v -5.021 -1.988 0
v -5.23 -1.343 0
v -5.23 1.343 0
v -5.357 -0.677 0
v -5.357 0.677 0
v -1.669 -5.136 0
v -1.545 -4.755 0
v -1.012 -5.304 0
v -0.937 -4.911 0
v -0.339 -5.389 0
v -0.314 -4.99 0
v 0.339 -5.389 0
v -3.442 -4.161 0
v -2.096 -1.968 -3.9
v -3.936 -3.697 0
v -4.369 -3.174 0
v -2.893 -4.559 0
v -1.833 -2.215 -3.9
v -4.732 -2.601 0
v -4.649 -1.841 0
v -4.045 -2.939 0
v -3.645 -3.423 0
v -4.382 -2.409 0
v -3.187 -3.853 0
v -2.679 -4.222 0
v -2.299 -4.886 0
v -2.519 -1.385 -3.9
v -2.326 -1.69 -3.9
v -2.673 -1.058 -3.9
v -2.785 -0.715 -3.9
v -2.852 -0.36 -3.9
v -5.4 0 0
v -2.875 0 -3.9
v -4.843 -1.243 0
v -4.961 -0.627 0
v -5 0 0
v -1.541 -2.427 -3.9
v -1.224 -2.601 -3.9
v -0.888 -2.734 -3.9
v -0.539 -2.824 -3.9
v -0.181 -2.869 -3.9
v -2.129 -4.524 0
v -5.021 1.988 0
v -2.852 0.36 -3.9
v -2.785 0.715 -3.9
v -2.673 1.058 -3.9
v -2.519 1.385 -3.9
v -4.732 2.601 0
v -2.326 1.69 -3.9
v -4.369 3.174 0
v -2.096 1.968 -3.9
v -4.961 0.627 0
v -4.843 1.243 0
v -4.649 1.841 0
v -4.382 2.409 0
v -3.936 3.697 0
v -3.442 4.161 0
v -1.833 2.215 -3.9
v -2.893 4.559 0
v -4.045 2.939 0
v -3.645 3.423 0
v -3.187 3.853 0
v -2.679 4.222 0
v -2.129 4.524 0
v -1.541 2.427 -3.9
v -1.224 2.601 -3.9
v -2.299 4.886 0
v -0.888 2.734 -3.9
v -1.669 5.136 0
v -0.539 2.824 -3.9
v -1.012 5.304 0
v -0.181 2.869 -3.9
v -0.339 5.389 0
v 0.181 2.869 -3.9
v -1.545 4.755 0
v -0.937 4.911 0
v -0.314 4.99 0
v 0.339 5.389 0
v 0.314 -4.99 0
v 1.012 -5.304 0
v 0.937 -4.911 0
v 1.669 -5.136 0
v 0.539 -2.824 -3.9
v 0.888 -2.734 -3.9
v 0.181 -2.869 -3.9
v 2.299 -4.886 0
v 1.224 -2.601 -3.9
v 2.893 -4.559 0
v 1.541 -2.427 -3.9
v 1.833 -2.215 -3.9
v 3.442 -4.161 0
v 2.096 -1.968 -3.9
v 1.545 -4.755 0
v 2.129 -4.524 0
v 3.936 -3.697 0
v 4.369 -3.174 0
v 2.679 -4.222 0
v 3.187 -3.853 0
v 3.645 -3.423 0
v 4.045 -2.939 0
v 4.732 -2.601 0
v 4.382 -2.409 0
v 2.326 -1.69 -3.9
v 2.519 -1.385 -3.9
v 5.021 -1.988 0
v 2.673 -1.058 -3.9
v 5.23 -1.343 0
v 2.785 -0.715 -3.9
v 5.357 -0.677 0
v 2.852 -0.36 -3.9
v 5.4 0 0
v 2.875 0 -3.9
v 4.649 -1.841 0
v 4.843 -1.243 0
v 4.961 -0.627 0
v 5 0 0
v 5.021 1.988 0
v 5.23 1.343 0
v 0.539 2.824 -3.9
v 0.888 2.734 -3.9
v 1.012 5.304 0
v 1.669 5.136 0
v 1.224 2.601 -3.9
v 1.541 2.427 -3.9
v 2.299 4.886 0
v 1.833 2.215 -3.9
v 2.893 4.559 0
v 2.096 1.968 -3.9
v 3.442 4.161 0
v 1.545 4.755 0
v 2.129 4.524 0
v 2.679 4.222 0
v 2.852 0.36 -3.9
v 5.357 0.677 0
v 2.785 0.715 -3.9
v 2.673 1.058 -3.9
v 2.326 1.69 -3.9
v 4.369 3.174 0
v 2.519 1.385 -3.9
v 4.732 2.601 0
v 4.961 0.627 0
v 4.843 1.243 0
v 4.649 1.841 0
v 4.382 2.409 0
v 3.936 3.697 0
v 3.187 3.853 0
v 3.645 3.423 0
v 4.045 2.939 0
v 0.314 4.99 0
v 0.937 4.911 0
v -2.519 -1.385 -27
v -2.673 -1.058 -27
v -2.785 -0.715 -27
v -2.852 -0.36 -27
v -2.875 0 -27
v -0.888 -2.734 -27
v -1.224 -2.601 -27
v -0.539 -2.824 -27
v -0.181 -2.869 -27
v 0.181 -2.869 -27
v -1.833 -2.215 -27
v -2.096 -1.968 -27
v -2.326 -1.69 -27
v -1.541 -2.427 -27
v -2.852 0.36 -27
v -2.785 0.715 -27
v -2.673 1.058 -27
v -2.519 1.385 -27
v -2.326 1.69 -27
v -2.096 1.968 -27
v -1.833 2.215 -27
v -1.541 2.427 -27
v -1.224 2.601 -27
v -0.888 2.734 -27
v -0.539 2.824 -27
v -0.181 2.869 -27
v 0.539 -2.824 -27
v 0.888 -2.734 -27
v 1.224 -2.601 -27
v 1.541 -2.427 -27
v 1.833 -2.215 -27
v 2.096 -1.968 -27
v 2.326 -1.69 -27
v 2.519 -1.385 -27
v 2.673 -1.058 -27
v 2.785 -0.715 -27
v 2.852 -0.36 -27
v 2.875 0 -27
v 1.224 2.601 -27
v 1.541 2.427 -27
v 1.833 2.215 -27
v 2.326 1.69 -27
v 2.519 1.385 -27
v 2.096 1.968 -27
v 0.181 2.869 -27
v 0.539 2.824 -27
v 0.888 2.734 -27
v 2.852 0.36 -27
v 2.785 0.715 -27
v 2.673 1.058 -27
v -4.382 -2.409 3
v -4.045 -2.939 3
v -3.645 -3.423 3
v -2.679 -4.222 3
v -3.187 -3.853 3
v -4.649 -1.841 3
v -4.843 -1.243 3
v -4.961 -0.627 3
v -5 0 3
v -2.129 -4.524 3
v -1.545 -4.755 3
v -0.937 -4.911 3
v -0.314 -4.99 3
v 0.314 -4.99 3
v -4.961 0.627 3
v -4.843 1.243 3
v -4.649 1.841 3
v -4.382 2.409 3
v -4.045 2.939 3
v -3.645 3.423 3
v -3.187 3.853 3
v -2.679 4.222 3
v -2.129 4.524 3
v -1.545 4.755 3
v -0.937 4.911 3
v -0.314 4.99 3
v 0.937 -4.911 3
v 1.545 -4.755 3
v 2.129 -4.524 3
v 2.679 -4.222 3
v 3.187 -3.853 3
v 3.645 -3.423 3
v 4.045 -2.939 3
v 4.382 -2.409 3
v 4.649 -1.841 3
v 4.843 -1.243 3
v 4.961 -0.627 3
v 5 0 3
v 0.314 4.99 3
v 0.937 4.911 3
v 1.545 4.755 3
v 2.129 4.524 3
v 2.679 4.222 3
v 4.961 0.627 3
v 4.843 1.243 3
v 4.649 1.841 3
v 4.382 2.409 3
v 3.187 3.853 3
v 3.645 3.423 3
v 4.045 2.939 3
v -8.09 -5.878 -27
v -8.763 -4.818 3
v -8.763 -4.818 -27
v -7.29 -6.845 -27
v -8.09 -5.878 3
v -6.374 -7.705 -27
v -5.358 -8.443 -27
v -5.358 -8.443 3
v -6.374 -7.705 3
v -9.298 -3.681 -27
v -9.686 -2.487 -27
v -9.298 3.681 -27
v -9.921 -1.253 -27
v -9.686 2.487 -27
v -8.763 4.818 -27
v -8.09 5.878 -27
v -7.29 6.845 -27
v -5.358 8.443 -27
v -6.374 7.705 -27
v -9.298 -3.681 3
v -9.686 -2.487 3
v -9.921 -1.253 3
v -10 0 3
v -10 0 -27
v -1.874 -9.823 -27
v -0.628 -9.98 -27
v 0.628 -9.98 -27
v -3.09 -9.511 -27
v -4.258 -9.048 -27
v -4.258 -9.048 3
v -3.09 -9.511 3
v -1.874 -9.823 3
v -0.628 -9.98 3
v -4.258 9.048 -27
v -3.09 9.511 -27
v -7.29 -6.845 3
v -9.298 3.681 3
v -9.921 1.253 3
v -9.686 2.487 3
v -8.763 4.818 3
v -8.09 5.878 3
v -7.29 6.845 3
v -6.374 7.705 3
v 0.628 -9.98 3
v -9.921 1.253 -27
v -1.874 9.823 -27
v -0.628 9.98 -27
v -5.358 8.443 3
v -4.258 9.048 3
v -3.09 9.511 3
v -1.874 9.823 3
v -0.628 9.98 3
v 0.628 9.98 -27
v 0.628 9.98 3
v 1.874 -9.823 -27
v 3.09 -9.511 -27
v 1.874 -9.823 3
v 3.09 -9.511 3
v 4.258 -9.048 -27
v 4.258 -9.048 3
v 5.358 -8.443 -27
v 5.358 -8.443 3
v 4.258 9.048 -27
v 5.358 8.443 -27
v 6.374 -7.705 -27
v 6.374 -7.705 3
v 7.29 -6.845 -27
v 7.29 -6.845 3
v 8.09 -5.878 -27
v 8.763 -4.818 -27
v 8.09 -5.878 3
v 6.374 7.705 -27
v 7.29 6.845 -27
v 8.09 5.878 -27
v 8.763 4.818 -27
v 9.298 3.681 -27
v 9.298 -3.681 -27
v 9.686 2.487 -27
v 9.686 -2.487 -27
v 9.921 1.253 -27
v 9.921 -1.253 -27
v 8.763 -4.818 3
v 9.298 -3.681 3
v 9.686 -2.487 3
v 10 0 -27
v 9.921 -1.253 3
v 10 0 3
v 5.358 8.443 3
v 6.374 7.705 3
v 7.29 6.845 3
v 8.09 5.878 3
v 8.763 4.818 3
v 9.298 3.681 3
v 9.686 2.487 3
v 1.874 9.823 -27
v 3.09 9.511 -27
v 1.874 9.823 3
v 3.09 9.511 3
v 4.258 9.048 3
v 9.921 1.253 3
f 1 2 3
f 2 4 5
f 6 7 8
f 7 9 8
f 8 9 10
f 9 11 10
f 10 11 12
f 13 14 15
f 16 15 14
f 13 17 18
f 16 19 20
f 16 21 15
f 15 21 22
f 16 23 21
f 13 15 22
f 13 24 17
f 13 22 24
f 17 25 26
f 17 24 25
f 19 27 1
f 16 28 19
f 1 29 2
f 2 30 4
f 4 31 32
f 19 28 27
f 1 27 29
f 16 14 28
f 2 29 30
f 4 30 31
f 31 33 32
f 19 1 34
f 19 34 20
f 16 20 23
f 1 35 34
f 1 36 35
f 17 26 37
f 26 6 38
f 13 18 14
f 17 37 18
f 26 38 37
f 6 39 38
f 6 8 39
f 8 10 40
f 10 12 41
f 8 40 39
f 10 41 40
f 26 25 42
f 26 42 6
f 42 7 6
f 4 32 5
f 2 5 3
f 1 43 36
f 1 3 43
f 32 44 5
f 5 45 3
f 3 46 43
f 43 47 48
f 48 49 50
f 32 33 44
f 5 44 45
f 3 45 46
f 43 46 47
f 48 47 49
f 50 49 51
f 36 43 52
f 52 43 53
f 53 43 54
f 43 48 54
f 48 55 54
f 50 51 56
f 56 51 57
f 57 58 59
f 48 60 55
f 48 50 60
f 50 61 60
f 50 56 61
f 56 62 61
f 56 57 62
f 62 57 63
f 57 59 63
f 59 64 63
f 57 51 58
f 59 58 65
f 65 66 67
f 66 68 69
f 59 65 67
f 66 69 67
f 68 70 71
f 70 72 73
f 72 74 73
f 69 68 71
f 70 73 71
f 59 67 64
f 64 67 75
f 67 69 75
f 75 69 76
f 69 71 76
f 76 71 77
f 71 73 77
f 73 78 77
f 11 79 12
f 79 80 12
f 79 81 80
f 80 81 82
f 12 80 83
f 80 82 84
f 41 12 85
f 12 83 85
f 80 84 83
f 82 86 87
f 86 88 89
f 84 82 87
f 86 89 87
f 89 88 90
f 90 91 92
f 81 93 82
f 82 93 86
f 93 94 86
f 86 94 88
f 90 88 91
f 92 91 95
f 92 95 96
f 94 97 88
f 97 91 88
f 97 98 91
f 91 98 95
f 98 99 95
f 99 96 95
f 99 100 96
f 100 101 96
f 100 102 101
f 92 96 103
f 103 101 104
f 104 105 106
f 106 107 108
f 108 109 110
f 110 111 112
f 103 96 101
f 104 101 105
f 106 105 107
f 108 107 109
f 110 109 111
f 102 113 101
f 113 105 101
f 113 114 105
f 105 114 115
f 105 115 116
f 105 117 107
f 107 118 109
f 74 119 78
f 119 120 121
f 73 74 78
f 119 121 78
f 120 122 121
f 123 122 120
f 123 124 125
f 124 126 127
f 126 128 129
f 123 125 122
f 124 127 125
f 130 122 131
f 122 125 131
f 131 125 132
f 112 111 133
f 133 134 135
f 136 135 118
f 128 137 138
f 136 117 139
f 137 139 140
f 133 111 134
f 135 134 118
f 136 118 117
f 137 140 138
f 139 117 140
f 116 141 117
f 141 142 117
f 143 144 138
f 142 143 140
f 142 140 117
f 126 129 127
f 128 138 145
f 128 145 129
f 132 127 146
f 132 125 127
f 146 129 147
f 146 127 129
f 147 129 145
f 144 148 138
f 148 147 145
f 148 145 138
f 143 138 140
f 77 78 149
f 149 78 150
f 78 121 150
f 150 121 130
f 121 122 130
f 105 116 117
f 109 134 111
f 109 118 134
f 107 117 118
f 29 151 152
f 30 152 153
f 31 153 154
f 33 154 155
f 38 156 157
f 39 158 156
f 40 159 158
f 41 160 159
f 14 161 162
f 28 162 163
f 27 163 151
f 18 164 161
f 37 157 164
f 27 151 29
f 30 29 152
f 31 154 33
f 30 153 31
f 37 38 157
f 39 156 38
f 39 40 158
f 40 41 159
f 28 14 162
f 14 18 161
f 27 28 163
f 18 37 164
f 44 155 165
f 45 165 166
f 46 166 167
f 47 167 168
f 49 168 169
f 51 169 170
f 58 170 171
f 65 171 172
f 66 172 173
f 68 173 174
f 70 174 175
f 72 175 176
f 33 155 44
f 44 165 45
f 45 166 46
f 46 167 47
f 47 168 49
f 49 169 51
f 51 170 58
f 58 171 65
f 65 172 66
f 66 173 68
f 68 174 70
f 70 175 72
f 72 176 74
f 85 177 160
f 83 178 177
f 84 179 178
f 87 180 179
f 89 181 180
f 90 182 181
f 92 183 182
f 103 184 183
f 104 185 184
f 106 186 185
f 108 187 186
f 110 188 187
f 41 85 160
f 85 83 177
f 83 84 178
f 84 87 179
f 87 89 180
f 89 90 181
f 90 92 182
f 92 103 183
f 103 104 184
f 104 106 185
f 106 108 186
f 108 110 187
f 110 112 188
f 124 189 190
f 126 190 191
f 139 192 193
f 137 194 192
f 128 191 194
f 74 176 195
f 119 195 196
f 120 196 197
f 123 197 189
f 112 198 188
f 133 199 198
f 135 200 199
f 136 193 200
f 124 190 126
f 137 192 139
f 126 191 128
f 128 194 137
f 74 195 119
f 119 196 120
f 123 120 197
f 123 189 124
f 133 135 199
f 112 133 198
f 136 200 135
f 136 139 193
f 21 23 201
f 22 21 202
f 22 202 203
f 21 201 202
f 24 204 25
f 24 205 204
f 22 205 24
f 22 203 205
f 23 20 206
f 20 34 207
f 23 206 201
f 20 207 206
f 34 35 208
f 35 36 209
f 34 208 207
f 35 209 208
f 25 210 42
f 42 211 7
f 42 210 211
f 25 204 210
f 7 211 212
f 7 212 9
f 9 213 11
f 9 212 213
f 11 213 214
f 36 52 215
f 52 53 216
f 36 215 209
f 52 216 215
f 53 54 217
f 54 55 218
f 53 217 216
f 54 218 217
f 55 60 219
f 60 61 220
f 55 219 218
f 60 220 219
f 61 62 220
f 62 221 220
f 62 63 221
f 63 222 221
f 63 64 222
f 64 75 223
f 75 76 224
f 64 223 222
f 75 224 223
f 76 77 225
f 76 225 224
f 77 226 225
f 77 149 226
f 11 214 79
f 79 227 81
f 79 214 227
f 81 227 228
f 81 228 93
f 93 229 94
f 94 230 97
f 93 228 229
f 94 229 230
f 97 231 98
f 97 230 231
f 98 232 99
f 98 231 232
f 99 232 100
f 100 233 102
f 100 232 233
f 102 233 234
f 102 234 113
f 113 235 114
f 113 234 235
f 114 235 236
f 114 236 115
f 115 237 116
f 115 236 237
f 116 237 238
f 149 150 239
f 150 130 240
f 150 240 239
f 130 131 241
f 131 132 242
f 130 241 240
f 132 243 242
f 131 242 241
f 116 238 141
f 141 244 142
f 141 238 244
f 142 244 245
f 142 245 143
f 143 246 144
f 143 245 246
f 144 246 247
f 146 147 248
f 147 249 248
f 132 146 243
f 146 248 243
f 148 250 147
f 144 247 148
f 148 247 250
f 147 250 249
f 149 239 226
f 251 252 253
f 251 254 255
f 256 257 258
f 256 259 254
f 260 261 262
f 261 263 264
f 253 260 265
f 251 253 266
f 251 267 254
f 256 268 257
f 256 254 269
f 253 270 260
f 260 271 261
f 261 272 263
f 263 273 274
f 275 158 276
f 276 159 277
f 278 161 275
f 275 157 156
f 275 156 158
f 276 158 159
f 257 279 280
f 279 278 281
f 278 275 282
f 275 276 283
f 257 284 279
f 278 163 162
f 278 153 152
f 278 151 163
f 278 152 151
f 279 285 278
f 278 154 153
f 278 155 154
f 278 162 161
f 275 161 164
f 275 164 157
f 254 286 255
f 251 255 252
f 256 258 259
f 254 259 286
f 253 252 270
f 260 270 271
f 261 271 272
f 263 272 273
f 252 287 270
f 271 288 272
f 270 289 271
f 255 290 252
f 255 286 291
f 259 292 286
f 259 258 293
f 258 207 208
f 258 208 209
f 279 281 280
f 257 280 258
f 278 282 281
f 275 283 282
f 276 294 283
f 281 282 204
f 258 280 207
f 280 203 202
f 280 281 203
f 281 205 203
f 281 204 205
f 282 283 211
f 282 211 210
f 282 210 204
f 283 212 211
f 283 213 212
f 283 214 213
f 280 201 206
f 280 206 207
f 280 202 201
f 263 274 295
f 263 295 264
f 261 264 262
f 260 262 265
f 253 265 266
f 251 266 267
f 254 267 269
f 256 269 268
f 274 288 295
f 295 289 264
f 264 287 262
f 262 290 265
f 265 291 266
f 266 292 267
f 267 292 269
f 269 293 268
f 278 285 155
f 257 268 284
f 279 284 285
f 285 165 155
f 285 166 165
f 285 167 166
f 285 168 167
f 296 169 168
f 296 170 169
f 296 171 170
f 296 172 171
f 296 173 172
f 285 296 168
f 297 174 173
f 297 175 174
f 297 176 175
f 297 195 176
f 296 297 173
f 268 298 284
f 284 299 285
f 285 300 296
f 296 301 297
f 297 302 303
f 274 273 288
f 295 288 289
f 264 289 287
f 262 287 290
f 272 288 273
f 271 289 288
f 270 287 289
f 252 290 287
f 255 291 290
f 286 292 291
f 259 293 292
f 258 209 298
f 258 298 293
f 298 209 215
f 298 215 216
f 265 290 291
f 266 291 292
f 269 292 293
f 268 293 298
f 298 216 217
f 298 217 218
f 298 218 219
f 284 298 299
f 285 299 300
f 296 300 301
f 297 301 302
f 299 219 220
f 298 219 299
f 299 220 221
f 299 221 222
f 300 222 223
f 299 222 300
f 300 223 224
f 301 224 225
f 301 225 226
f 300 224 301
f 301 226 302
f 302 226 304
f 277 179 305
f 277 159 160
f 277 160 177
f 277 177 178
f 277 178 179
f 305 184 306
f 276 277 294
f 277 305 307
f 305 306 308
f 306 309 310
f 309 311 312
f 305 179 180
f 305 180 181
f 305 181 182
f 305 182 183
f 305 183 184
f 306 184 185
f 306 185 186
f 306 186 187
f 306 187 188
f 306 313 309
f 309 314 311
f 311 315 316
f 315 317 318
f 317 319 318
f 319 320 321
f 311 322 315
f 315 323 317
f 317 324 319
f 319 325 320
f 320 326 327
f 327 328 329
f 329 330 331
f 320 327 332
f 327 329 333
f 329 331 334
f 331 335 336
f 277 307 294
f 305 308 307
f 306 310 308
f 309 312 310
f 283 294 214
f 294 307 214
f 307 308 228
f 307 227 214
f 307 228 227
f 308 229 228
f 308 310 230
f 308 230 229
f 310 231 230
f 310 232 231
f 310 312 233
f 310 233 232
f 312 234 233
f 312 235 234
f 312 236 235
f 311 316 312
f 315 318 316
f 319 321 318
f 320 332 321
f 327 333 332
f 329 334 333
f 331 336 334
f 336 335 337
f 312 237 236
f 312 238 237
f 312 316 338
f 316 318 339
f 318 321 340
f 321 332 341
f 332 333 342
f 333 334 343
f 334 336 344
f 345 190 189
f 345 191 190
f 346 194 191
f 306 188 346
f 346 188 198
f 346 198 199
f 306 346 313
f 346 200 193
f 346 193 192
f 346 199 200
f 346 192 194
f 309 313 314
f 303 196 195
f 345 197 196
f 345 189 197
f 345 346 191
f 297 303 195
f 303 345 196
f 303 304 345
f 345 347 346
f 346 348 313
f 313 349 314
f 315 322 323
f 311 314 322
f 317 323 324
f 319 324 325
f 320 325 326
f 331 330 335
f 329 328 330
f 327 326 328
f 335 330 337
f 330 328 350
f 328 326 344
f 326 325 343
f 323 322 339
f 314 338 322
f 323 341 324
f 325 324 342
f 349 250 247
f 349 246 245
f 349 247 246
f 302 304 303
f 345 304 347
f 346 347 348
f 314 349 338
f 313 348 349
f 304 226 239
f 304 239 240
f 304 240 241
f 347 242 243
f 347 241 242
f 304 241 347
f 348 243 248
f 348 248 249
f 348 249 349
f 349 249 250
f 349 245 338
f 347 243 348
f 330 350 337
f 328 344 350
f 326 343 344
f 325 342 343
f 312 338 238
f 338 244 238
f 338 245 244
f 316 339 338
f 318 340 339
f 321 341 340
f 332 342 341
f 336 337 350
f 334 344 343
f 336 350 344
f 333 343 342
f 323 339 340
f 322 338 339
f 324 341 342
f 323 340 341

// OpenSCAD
$fn = 50;


difference() {
	union() {
		translate(v = [0, 0, -27.0000000000]) {
			cylinder(h = 30, r = 10.0000000000);
		}
	}
	union() {
		translate(v = [0, 0, 0]) {
			rotate(a = [0, 0, 0]) {
				difference() {
					union() {
						translate(v = [0, 0, -30.0000000000]) {
							cylinder(h = 30, r = 2.6000000000);
						}
						translate(v = [0, 0, -3.9000000000]) {
							cylinder(h = 3.9000000000, r1 = 2.8750000000, r2 = 5.4000000000);
						}
						translate(v = [0, 0, -30.0000000000]) {
							cylinder(h = 30, r = 2.8750000000);
						}
						translate(v = [0, 0, -30.0000000000]) {
							cylinder(h = 30, r = 2.6000000000);
						}
					}
					union();
				}
			}
		}
		#cylinder(h = 3, r = 5.0000000000);
	}
}
